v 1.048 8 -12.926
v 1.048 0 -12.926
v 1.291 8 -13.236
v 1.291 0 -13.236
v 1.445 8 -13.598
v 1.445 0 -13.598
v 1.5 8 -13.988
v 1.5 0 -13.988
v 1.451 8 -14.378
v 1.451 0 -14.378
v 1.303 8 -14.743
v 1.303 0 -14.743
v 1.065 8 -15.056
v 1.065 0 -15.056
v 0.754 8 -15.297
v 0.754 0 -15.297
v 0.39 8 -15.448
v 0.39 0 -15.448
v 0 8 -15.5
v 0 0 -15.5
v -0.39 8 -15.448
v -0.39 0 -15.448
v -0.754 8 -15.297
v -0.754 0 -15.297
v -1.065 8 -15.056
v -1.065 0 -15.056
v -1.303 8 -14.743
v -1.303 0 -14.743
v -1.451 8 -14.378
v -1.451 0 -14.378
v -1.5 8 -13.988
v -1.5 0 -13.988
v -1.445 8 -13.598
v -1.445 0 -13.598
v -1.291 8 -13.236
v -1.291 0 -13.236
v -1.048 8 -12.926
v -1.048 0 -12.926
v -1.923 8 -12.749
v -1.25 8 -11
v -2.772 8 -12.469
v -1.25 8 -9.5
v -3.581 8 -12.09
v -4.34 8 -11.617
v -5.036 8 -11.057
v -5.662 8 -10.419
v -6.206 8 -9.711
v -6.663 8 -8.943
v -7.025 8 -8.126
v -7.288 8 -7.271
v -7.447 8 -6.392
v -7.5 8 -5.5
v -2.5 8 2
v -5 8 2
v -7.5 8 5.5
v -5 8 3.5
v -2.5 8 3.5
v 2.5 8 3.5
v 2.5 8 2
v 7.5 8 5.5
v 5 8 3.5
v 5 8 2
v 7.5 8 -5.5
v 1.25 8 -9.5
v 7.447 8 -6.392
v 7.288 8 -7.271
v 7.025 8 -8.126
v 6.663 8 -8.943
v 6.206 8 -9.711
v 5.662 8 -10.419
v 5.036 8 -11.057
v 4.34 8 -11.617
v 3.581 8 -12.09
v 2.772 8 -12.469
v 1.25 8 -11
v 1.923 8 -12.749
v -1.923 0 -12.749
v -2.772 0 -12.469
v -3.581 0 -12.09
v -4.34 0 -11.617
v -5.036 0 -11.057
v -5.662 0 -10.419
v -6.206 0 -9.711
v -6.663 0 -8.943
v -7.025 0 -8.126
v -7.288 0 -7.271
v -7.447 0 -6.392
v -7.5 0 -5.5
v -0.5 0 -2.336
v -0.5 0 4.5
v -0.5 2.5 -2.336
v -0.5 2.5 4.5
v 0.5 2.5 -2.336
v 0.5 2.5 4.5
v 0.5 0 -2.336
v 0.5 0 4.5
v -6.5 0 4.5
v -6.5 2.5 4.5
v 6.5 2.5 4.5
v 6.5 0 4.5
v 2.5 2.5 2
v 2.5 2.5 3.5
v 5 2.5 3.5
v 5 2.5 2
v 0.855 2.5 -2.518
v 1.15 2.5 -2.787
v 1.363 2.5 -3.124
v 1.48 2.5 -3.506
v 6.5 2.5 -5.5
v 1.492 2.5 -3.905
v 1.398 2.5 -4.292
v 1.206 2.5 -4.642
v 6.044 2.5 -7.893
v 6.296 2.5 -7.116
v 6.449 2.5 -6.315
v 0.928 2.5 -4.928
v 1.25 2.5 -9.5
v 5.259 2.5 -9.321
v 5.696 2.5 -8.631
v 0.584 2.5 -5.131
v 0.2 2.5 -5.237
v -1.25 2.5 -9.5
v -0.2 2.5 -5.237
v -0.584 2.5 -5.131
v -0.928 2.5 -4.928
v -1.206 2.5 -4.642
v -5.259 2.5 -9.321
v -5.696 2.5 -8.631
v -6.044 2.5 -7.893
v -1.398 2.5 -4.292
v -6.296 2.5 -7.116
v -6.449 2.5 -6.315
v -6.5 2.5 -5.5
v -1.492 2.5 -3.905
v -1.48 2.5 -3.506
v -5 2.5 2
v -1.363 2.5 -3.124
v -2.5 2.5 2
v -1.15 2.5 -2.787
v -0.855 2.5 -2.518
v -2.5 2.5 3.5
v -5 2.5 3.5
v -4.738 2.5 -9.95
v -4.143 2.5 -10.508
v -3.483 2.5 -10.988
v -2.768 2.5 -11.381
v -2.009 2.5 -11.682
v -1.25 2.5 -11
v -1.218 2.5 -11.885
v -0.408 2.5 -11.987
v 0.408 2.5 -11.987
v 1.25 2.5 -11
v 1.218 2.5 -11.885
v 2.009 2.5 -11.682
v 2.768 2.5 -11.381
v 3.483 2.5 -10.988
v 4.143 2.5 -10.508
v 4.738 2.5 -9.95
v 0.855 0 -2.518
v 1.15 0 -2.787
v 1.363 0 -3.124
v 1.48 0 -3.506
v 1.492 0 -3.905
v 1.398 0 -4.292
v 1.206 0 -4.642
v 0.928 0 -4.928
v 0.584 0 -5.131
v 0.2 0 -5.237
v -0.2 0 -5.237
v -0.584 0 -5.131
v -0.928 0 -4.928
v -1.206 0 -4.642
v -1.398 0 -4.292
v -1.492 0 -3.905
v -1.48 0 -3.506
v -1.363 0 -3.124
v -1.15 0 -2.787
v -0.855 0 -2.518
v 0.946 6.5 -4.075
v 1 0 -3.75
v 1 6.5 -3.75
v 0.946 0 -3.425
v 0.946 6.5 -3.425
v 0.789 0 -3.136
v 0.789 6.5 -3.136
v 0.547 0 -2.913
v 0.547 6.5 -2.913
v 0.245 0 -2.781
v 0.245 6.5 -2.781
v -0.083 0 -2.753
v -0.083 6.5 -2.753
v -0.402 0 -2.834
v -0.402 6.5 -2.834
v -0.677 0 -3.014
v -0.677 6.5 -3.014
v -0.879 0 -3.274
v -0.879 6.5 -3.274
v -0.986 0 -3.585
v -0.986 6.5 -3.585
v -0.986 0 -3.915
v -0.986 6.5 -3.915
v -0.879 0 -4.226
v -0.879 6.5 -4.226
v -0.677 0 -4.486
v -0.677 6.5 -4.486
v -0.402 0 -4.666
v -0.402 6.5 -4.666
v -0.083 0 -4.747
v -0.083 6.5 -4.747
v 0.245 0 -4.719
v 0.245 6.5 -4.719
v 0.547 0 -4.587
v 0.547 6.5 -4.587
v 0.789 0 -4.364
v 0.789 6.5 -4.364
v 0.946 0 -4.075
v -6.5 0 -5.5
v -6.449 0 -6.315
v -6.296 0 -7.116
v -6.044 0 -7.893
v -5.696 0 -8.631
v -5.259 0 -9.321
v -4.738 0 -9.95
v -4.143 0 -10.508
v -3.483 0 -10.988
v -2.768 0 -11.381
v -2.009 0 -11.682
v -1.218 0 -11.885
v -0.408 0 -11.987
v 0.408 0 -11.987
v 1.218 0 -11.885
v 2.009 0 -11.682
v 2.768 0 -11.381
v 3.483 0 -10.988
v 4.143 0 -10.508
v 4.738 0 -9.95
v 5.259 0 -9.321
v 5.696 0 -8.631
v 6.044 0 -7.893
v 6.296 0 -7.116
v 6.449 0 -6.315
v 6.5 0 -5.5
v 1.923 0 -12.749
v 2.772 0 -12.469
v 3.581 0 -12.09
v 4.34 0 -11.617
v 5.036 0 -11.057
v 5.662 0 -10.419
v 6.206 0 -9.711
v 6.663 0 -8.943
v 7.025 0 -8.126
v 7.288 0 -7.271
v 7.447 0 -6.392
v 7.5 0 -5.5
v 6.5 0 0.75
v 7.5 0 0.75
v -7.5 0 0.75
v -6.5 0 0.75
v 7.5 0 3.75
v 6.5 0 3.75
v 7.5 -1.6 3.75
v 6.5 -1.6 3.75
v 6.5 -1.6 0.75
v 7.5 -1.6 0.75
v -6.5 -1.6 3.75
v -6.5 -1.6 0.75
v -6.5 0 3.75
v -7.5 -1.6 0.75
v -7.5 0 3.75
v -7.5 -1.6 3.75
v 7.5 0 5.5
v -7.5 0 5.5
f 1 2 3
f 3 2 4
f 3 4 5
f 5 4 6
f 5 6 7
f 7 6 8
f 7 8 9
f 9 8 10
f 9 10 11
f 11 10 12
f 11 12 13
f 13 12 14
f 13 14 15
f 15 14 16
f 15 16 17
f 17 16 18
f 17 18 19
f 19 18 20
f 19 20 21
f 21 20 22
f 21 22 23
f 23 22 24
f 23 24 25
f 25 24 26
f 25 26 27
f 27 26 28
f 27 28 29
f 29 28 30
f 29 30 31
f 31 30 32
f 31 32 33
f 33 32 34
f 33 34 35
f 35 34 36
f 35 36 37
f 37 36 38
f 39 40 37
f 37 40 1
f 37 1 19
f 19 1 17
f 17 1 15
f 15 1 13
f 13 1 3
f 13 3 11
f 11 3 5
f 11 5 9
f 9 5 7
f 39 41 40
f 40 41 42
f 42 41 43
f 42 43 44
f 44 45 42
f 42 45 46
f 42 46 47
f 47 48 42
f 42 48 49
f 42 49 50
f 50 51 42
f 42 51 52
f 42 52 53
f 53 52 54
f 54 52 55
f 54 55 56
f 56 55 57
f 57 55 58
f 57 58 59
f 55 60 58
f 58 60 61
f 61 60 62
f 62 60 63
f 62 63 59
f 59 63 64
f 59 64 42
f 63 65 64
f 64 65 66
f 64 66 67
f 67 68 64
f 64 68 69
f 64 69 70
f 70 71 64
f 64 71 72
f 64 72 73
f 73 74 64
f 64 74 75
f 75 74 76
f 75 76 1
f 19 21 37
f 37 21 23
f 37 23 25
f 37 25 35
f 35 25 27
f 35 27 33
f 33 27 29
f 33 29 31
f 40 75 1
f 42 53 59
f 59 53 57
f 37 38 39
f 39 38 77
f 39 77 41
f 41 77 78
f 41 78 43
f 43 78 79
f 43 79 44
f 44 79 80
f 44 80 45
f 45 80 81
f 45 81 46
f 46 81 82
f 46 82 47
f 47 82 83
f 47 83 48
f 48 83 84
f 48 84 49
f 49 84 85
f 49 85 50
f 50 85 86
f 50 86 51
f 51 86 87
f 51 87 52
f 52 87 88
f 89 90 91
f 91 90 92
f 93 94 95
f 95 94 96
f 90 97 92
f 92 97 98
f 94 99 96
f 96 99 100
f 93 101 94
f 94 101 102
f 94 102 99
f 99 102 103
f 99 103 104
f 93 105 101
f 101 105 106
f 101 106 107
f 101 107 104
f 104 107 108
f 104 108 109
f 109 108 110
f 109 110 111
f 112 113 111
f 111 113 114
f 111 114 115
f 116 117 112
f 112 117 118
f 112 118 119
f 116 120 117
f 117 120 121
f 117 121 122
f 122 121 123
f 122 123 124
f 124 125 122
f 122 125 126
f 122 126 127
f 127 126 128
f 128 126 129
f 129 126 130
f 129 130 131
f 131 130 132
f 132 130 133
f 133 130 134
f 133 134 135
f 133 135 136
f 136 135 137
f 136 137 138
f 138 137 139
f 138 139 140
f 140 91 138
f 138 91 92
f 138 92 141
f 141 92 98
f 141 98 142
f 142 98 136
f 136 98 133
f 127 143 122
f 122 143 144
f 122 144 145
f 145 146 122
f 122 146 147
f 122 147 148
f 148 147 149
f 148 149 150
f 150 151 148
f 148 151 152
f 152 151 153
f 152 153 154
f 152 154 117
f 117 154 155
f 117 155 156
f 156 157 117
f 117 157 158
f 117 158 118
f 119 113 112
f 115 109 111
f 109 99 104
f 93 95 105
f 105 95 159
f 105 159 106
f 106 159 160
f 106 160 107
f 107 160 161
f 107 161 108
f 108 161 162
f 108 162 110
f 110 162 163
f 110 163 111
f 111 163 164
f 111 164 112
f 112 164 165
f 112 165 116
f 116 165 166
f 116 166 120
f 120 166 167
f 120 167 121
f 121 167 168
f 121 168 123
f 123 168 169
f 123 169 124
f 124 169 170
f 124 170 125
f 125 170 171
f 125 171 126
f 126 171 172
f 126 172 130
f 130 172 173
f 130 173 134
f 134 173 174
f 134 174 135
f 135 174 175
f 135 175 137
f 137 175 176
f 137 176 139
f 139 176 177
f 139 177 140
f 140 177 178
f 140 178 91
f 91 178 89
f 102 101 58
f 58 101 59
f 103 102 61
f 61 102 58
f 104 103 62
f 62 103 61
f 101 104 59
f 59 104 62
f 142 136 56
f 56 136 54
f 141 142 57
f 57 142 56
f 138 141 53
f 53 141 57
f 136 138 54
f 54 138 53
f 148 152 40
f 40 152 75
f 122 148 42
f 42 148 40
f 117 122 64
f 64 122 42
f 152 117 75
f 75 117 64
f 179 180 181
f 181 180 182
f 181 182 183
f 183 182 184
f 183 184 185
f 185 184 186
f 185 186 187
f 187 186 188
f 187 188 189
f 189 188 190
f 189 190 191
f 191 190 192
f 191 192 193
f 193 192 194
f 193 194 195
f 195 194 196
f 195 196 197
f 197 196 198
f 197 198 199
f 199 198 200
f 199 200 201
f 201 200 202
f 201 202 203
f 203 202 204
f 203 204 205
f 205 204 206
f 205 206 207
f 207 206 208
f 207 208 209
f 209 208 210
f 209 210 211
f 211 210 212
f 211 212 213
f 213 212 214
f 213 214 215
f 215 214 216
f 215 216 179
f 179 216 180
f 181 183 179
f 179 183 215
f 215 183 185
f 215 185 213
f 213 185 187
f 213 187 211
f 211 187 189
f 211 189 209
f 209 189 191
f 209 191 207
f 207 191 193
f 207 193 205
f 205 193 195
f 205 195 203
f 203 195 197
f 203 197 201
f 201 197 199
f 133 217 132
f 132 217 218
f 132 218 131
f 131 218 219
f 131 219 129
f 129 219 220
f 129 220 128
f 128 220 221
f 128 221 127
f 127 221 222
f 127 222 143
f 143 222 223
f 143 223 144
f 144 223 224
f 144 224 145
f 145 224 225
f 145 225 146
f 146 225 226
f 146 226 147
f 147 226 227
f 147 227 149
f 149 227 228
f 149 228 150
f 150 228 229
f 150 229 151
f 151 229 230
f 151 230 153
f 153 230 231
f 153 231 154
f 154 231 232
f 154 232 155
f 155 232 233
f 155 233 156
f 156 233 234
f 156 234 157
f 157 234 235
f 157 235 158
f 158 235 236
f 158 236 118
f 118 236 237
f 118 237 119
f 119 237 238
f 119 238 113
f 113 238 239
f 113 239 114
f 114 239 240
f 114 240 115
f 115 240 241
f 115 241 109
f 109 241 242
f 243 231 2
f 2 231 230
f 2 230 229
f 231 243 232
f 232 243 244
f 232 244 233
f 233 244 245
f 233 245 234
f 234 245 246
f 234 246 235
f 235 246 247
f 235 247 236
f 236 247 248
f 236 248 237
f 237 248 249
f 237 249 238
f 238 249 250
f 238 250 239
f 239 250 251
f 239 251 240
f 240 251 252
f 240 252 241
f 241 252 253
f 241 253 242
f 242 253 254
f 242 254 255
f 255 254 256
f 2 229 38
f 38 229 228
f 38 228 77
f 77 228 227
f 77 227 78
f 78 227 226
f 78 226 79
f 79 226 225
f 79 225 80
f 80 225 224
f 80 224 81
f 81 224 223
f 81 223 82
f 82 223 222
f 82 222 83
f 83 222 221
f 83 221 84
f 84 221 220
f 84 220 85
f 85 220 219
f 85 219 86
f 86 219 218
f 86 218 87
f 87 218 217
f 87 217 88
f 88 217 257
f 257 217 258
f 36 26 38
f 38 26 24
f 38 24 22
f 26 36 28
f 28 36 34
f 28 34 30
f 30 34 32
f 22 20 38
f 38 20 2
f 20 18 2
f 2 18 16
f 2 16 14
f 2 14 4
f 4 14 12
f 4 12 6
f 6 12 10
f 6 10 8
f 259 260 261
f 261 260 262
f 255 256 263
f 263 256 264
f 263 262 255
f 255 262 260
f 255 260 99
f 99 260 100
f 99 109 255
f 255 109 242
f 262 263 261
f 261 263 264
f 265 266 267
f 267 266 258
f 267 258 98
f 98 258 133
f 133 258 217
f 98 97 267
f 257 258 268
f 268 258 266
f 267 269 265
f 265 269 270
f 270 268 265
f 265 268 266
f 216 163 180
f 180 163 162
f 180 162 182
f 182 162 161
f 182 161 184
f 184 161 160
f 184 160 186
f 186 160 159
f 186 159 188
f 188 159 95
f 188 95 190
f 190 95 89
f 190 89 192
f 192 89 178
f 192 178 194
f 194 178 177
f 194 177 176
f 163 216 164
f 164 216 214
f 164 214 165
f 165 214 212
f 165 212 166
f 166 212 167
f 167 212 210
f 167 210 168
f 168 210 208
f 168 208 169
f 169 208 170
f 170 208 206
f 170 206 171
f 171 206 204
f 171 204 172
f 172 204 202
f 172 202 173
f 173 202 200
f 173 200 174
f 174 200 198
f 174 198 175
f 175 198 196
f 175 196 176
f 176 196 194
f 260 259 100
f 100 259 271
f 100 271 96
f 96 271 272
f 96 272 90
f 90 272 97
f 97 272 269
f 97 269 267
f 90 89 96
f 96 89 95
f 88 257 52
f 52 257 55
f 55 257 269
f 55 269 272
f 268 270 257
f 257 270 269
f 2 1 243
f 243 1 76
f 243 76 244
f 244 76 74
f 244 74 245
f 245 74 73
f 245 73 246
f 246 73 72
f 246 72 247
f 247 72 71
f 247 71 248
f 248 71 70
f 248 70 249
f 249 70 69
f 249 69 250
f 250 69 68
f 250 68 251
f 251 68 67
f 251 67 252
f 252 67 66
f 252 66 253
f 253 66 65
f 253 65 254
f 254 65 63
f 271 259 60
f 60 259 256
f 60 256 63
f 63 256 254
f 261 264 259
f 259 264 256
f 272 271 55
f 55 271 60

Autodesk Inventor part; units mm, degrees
ref_plane "YZ Plane" through (0, 0, 0) normal (1, 0, 0) x (0, 1, 0)
ref_plane "XZ Plane" through (0, 0, 0) normal (0, 1, 0) x (-1, 0, 0)
ref_plane "XY Plane" through (0, 0, 0) normal (0, 0, 1) x (1, 0, 0)
sketch "Sketch1" plane through (0, 0, 0) normal (0, 1, 0) x (-1, 0, 0)
  line L0 (-7.5, 5.5) -> (7.5, 5.5)
  line L1 (7.5, 5.5) -> (7.5, -5.5)
  line L2 (7.5, -5.5) -> (-7.5, -5.5)
  line L3 (-7.5, -5.5) -> (-7.5, 5.5)
  line L4 (-7.5, 5.5) -> (7.5, -5.5) construction
  line L5 (7.5, 5.5) -> (-7.5, -5.5) construction
  circle A0 centre (0, -5.5) radius 7.5 construction
  arc A1 (-7.5, -5.5) -> (7.5, -5.5) centre (0, -5.5) ccw
  point P0 (0, 0)
  dimension "d0" = 11
  dimension "d1" = 15
extrude "Extrusion1" add sketch "Sketch1" along normal blind 8
sketch "Sketch2" plane through (0, 0, 0) normal (0, -1, 0) x (1, 0, 0)
  line L0 (7.5, 9.25) -> (-7.5, 9.25)
  line L1 (-7.5, 9.25) -> (-7.5, -20.75)
  line L2 (-7.5, -20.75) -> (7.5, -20.75)
  line L3 (7.5, -20.75) -> (7.5, 9.25)
  line L4 (7.5, 9.25) -> (-7.5, -20.75) construction
  line L5 (-7.5, 9.25) -> (7.5, -20.75) construction
  line L6 (-7.5, 5.5) -> (7.5, 5.5) projected
  line L7 (7, 8.75) -> (-7, 8.75) construction
  line L8 (-7, 8.75) -> (-7, -20.25) construction
  line L9 (-7, -20.25) -> (7, -20.25) construction
  line L10 (7, -20.25) -> (7, 8.75) construction
  line L11 (7, 8.75) -> (-7, -20.25) construction
  line L12 (-7, 8.75) -> (7, -20.25) construction
  point P0 (0, 0)
  point P1 (0, -5.75)
  dimension "d4" = 15
  dimension "d5" = 30
  dimension "d6" = 3.75
  dimension "d18" = 0.5
  dimension "d19" = 0.5
sketch "Sketch4" plane through (0, 0, 0) normal (0, -1, 0) x (1, 0, 0)
  line L0 (-7.5, -5.5) -> (-7.5, 5.5) projected
  line L1 (-7.5, 3.75) -> (-6.5, 3.75)
  line L2 (-6.5, 3.75) -> (-6.5, 0.75)
  line L3 (-6.5, 0.75) -> (-7.5, 0.75)
  line L4 (-7.5, 0.75) -> (-7.5, 3.75)
  line L5 (7.5, 5.5) -> (7.5, -5.5) projected
  line L6 (7.5, 0.75) -> (6.5, 0.75)
  line L7 (6.5, 0.75) -> (6.5, 3.75)
  line L8 (6.5, 3.75) -> (7.5, 3.75)
  line L9 (7.5, 3.75) -> (7.5, 0.75)
  line L10 (-7.5, -20.25) -> (7.5, -20.25) construction
  line L11 (7.5, -20.25) -> (7.5, 9.75) construction
  line L12 (7.5, 9.75) -> (-7.5, 9.75) construction
  line L13 (-7.5, 9.75) -> (-7.5, -20.25) construction
  line L14 (-7.5, -20.25) -> (7.5, 9.75) construction
  line L15 (7.5, -20.25) -> (-7.5, 9.75) construction
  line L16 (-7.5, 5.5) -> (7.5, 5.5) construction
  arc A0 (-7.5, -5.5) -> (7.5, -5.5) centre (0, -5.5) ccw construction
  point P0 (0, 0)
  point P1 (0, -5.25)
  point P2 (0, -13)
  point P3 (-7, 3.75)
  point P4 (-7.5, 0.75)
  point P5 (-7, 0.75)
  point P6 (7.5, 3.75)
  point P7 (-7.5, 0.75)
  dimension "d20" = 1
  dimension "d21" = 3
  dimension "d22" = 1
  dimension "d23" = 3
  dimension "d24" = 15
  dimension "d25" = 30
  dimension "d27" = 7.25
  dimension "d106" = 0.75
extrude "Extrusion3" add sketch "Sketch4" along normal blind 1.6
sketch "Sketch6" plane through (0, 0, 0) normal (0, -1, 0) x (1, 0, 0)
  line L0 (7.5, 11.25) -> (-7.5, 11.25)
  line L1 (-7.5, 11.25) -> (-7.5, -18.75)
  line L2 (-7.5, -18.75) -> (7.5, -18.75)
  line L3 (7.5, -18.75) -> (7.5, 11.25)
  line L4 (7.5, 11.25) -> (-7.5, -18.75) construction
  line L5 (-7.5, 11.25) -> (7.5, -18.75) construction
  line L6 (7, 10.75) -> (-7, 10.75) construction
  line L7 (-7, 10.75) -> (-7, -18.25) construction
  line L8 (-7, -18.25) -> (7, -18.25) construction
  line L9 (7, -18.25) -> (7, 10.75) construction
  line L10 (7, 10.75) -> (-7, -18.25) construction
  line L11 (-7, 10.75) -> (7, -18.25) construction
  circle A0 centre (0, -3.75) radius 1
  circle A1 centre (0, -3.75) radius 1.5
  line L12 (-6.5, 4.5) -> (6.5, 4.5)
  line L13 (6.5, 4.5) -> (6.5, -5.5)
  line L14 (6.5, -5.5) -> (-6.5, -5.5)
  line L15 (-6.5, -5.5) -> (-6.5, 4.5)
  line L16 (-7.5, 5.5) -> (7.5, 5.5) projected
  arc A2 (-7.5, -5.5) -> (7.5, -5.5) centre (0, -5.5) ccw projected
  circle A3 centre (0, -5.5) radius 6.5
  point P0 (0, 0)
  point P1 (-7.5, -3.75)
  point P2 (6.5, -5.5)
  dimension "d31" = 15
  dimension "d32" = 30
  dimension "d34" = 0.5
  dimension "d35" = 0.5
  dimension "d36" = 2
  dimension "d37" = 0.5
  dimension "d38" = 1
  dimension "d39" = 1
  dimension "d40" = 1
  dimension "d41" = 1
  dimension "d107" = 3.75
extrude "Extrusion4" cut sketch "Sketch6" against normal blind 2.5 contours A0 | L12 L13 A3 L15 | A3 L14 | L14 A3
sketch "Sketch10" plane through (0, 8, 0) normal (0, 1, 0) x (1, 0, 0)
  point P0 (0, 0)
sketch "Sketch11" plane through (0, 0, 0) normal (0, -1, 0) x (1, 0, 0)
  line L0 (-5, 3.5) -> (-2.5, 3.5)
  line L1 (-2.5, 3.5) -> (-2.5, 2)
  line L2 (-2.5, 2) -> (-5, 2)
  line L3 (-5, 2) -> (-5, 3.5)
  line L4 (2.5, 3.5) -> (5, 3.5)
  line L5 (5, 3.5) -> (5, 2)
  line L6 (5, 2) -> (2.5, 2)
  line L7 (2.5, 2) -> (2.5, 3.5)
  line L8 (-6.5, 3.75) -> (-7.5, 3.75) projected
  line L9 (-6.5, 0.75) -> (-6.5, 3.75) projected
  line L10 (6.5, 3.75) -> (6.5, 0.75) projected
  line L11 (-6.5, 4.5) -> (6.5, 4.5) projected
  line L12 (-1.25, -11) -> (1.25, -11)
  line L13 (1.25, -11) -> (1.25, -9.5)
  line L14 (1.25, -9.5) -> (-1.25, -9.5)
  line L15 (-1.25, -9.5) -> (-1.25, -11)
  circle A0 centre (0, -3.75) radius 1 projected
  point P0 (0, 0)
  point P1 (-3.75, 3.5)
  point P2 (3.75, 3.5)
  point P3 (1.25, -10.25)
  point P4 (2.5, 2.75)
  point P5 (0, -9.5)
  point P6 (3.75, 2)
  point P7 (-2.5, 2.75)
  dimension "d51" = 2.5
  dimension "d52" = 1.5
  dimension "d55" = 2.75
  dimension "d56" = 2.75
  dimension "d60" = 13
  dimension "d61" = 3.75
  dimension "d62" = 3.75
  dimension "d103" = 6.5
  dimension "d104" = 6.5
extrude "Extrusion8" cut sketch "Sketch11" against normal blind 10 contours L0 L1 L2 L3 | L4 L5 L6 L7 | L15 L14 L13 L12
sketch "Sketch12" plane through (0, 2.5, 0) normal (0, -1, 0) x (1, 0, 0)
  line L0 (5, 2) -> (5, 3.5) construction
  line L1 (2.5, 2) -> (5, 2) construction
  line L2 (5, 3.5) -> (2.5, 3.5) construction
  line L3 (2.5, 3.5) -> (2.5, 2) construction
  line L4 (2.5, 2) -> (5, 2) construction
  line L5 (5, 2) -> (5, 3.5) construction
  line L6 (-2.5, 2) -> (-2.5, 3.5) construction
  line L7 (-2.5, 2) -> (-5, 2) construction
  line L8 (-2.5, 3.5) -> (-5, 3.5) construction
  line L9 (-5, 3.5) -> (-5, 2) construction
  line L10 (-5, 2) -> (-2.5, 2) construction
  line L11 (-2.5, 2) -> (-2.5, 3.5) construction
  line L12 (-1.25, -9.5) -> (1.25, -9.5) construction
  line L13 (-1.25, -9.5) -> (-1.25, -11) construction
  line L14 (1.25, -9.5) -> (-1.25, -9.5) construction
  line L15 (-1.25, -9.5) -> (-1.25, -11) construction
  line L16 (-1.25, -11) -> (1.25, -11) construction
  line L17 (1.25, -11) -> (1.25, -9.5) construction
  line L18 (5.5, 3.5) -> (2, 3.5)
  line L19 (2, 3.5) -> (2, 2)
  line L20 (2, 2) -> (5.5, 2)
  line L21 (5.5, 2) -> (5.5, 3.5)
  line L22 (1.75, -9.5) -> (-1.75, -9.5)
  line L23 (-1.75, -9.5) -> (-1.75, -11)
  line L24 (-1.75, -11) -> (1.75, -11)
  line L25 (1.75, -11) -> (1.75, -9.5)
  line L26 (-2, 3.5) -> (-5.5, 3.5)
  line L27 (-5.5, 3.5) -> (-5.5, 2)
  line L28 (-5.5, 2) -> (-2, 2)
  line L29 (-2, 2) -> (-2, 3.5)
  point P0 (0, 0)
  point P1 (-2.5, 2.75)
  point P2 (-2, 2.75)
  point P3 (-3.75, 2)
  point P4 (-3.75, 2)
  point P5 (-3.75, 3.5)
  point P6 (-3.75, 3.5)
  point P7 (-5, 2.75)
  point P8 (-5.5, 2.75)
  point P9 (1.25, -10.25)
  point P10 (1.75, -10.25)
  point P11 (0, -11)
  point P12 (-1.25, -10.25)
  dimension "d63" = 0.5
  dimension "d64" = 0
  dimension "d65" = 0
  dimension "d67" = 0.5
  dimension "d68" = 0
  dimension "d69" = 0
  dimension "d70" = 0.5
  dimension "d71" = 0.5
  dimension "d72" = 0
  dimension "d73" = 0
  dimension "d74" = 0.5
  dimension "d96" = 0.5
sketch "Sketch16" plane through (0, 2.5, 0) normal (0, -1, 0) x (1, 0, 0)
  line L0 (-6.5, -5.5) -> (-6.5, 4.5) construction
  line L1 (-6.5, 4.5) -> (6.5, 4.5) construction
  line L2 (-6.5, 4.5) -> (6.5, 4.5) construction
  line L3 (-0.5, 4.5) -> (0.5, 4.5)
  line L4 (0.5, 4.5) -> (0.5, -2.75)
  line L5 (0.5, -2.75) -> (-0.5, -2.75)
  line L6 (-0.5, -2.75) -> (-0.5, 4.5)
  circle A0 centre (0, -3.75) radius 1.5 construction
  circle A1 centre (0, -3.75) radius 1.75 construction
  line L7 (-6.5, -2.75) -> (6.5174, -2.75) construction
  circle A2 centre (0, -3.75) radius 1.5 construction
  circle A3 centre (0, -3.75) radius 1 construction
  line L8 (6.5, 0.75) -> (6.5, -5.5) projected
  line L9 (-6.5, -5.873) -> (6.5, -5.873)
  line L10 (6.5, -5.873) -> (6.5, -6.873)
  line L11 (6.5, -6.873) -> (-6.5, -6.873)
  line L12 (-6.5, -6.873) -> (-6.5, -5.873)
  point P0 (0, 0)
  point P1 (0, 4.5)
  point P2 (0.0087, -2.75)
  dimension "d94" = 1
  dimension "d95" = 1
extrude "Extrusion10" add sketch "Sketch16" along normal blind 2.5 contours L3 L4 L5 L6
sketch "Sketch18" plane through (0, 8, 0) normal (0, 1, 0) x (1, 0, 0)
  line L0 (0, 0) -> (0, 18.6084) construction
  circle A0 centre (0, 14) radius 1.5
  line L1 (-1.25, 11) -> (1.25, 11) projected
  dimension "d108" = 3
  dimension "d109" = 3
extrude "Extrusion12" add sketch "Sketch18" against normal blind 8
sketch "Sketch19" plane through (0, 2.5, -3.75) normal (0, -1, 0) x (1, 0, 0)
  circle A0 centre (0, 0) radius 1 projected
  circle A1 centre (0, 0) radius 1
  point P0 (0, 3.75)
extrude "Extrusion13" cut sketch "Sketch19" against normal blind 4
sketch "Sketch14" plane through (0, 2.5, 0) normal (0, -1, 0) x (1, 0, 0)
  line L0 (5, 2.75) -> (2.5, 2.75) construction
  line L1 (2.5, 2.75) -> (2.5, 1.25) construction
  line L2 (2.5, 1.25) -> (5, 1.25) construction
  line L3 (5, 1.25) -> (5, 2.75) construction
  line L4 (5.5, 3.25) -> (2, 3.25)
  line L5 (2, 3.25) -> (2, 0.75)
  line L6 (2, 0.75) -> (5.5, 0.75)
  line L7 (5.5, 0.75) -> (5.5, 3.25)
  dimension "d86" = 0.5
  dimension "d87" = 0.5
sketch "Sketch15" plane through (0, 3.5, 0) normal (0, -1, 0) x (1, 0, 0)
  line L0 (5, 2.75) -> (2.5, 2.75)
  line L1 (2.5, 2.75) -> (2.5, 1.25)
  line L2 (2.5, 1.25) -> (5, 1.25)
  line L3 (5, 1.25) -> (5, 2.75)
  point P0 (0, 0)
sketch "Sketch8" plane through (0, 0, -3.75) normal (0, -1, 0) x (1, 0, 0)
  circle A0 centre (0, 0) radius 1.75
  circle A1 centre (0, 0) radius 1.5 projected
  circle A2 centre (0, 0) radius 1.5
  point P0 (0, 3.75)
  dimension "d46" = 0.25
sketch "Sketch7" plane through (0, 2.5, -3.75) normal (0, -1, 0) x (1, 0, 0)
  circle A0 centre (0, 0) radius 1.25
  point P0 (0, 3.75)
properties part number "NANDGATE"
